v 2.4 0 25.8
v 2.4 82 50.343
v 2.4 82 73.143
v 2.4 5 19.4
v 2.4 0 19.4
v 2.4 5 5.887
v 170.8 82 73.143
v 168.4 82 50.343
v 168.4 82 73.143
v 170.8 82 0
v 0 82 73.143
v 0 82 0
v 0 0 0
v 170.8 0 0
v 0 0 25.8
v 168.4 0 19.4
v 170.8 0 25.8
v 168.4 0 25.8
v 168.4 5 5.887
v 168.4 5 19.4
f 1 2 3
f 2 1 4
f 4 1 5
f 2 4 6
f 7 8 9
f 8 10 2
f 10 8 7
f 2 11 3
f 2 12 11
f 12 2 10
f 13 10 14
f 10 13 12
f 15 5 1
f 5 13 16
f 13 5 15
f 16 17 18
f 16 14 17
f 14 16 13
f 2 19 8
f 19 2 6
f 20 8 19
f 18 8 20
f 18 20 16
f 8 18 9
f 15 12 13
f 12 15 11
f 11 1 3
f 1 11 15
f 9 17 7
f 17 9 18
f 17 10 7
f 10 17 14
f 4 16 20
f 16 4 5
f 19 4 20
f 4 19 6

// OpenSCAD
// file: common.scad
// ============================================================
// common.scad — shared parameters + modules for all designs
// LOCKED PEN SPECIFICATION (do not change)
// ============================================================
PEN_L = 165;      // pen length (mm)
PEN_A = 17;       // pen cross-section minor
PEN_B = 20;       // pen cross-section major (used as diameter envelope)
CLEAR = 0.4;      // fit clearance
WALL  = 1.6;      // minimum wall thickness

$fn = 64;

RCH = PEN_B/2 + CLEAR;   // = 10.4  channel radius
EPS = 0.01;

// --- open-top U trough cut, axis along X, centered at local origin -----------
// Removes a lower half-cylinder of radius r plus a full-width vertical slot
// upward, so the channel is open at the top (no ceiling -> no overhang).
module trough_cut(len, r=RCH, top=80) {
    union() {
        rotate([0,90,0]) cylinder(h=len, r=r, center=true);
        translate([0,0,top/2]) cube([len, 2*r, top], center=true); // slot upward
    }
}

// --- teardrop hole, axis along X, centered at local origin --------------------
// 45-degree self-supporting apex pointing +Z so a horizontal bore can print
// without support.
module teardrop_cut(len, r=RCH) {
    rotate([0,90,0])
        linear_extrude(height=len, center=true)
            union() {
                circle(r=r);
                polygon([[ 0.7071*r, 0.7071*r],
                         [ 0,         1.4142*r],
                         [-0.7071*r,  0.7071*r]]);
            }
}

// --- dial relief: widened open-top pocket at one channel end -----------------
// place at the +X or -X end of a channel so the dose dial clears / can be turned
module dial_relief(end_x, r=RCH+2.2, len=28, top=80) {
    translate([end_x, 0, 0]) trough_cut(len, r, top);
}
// main file
// sk2_chute — GRAVITY-FEED magazine (Jason's sketch, option #2).
// Drop a pen onto the ramp at the open back/top; it rolls DOWN to the front and
// stacks against the front catch wall (like a fridge can-dispenser). Take the
// front pen out over the lip; the next rolls forward. One open tray, 4 pens
// single-file. Prints support-free (sloped floor is a solid wedge; walls vertical).
include <common.scad>

THETA  = 30;              // ramp angle (gentle, so pens roll without slamming)
LXIN   = PEN_L + 1.0;     // inner length between end walls (pen + clearance)
EW     = 2.4;            // end wall thickness
LX     = LXIN + 2*EW;     // 171.8 outer (X)
BASE   = 3;              // floor thickness at the front
DEPTH  = 82;             // Y depth (~4 pens single-file)
FW     = 5;              // front catch wall thickness
HW     = 2*RCH + 2;      // side wall height above the floor (contains pens)
FLIP   = 6;              // front wall rises this far above the front pen center

t = tan(THETA);
ramp_back = BASE + DEPTH*t;          // floor height at the back
HT = ramp_back + HW;                 // overall height

// floor solid (front face = BASE tall, top = ramp rising to the back)
module floor_solid()
    translate([EW,0,0]) rotate([90,0,90]) linear_extrude(height=LXIN)
        polygon([[0,0],[DEPTH,0],[DEPTH,ramp_back],[0,BASE]]);

// one side wall: follows the ramp, stands HW above the floor
module side_wall()
    rotate([90,0,90]) linear_extrude(height=EW)
        polygon([[0,0],[DEPTH,0],[DEPTH,ramp_back+HW],[0,BASE+HW]]);

union() {
    floor_solid();
    translate([0,0,0])      side_wall();          // -X end wall
    translate([LX-EW,0,0])  side_wall();          // +X end wall
    // front catch wall + lip (retains the front pen)
    cube([LX, FW, BASE + RCH + FLIP]);
}
